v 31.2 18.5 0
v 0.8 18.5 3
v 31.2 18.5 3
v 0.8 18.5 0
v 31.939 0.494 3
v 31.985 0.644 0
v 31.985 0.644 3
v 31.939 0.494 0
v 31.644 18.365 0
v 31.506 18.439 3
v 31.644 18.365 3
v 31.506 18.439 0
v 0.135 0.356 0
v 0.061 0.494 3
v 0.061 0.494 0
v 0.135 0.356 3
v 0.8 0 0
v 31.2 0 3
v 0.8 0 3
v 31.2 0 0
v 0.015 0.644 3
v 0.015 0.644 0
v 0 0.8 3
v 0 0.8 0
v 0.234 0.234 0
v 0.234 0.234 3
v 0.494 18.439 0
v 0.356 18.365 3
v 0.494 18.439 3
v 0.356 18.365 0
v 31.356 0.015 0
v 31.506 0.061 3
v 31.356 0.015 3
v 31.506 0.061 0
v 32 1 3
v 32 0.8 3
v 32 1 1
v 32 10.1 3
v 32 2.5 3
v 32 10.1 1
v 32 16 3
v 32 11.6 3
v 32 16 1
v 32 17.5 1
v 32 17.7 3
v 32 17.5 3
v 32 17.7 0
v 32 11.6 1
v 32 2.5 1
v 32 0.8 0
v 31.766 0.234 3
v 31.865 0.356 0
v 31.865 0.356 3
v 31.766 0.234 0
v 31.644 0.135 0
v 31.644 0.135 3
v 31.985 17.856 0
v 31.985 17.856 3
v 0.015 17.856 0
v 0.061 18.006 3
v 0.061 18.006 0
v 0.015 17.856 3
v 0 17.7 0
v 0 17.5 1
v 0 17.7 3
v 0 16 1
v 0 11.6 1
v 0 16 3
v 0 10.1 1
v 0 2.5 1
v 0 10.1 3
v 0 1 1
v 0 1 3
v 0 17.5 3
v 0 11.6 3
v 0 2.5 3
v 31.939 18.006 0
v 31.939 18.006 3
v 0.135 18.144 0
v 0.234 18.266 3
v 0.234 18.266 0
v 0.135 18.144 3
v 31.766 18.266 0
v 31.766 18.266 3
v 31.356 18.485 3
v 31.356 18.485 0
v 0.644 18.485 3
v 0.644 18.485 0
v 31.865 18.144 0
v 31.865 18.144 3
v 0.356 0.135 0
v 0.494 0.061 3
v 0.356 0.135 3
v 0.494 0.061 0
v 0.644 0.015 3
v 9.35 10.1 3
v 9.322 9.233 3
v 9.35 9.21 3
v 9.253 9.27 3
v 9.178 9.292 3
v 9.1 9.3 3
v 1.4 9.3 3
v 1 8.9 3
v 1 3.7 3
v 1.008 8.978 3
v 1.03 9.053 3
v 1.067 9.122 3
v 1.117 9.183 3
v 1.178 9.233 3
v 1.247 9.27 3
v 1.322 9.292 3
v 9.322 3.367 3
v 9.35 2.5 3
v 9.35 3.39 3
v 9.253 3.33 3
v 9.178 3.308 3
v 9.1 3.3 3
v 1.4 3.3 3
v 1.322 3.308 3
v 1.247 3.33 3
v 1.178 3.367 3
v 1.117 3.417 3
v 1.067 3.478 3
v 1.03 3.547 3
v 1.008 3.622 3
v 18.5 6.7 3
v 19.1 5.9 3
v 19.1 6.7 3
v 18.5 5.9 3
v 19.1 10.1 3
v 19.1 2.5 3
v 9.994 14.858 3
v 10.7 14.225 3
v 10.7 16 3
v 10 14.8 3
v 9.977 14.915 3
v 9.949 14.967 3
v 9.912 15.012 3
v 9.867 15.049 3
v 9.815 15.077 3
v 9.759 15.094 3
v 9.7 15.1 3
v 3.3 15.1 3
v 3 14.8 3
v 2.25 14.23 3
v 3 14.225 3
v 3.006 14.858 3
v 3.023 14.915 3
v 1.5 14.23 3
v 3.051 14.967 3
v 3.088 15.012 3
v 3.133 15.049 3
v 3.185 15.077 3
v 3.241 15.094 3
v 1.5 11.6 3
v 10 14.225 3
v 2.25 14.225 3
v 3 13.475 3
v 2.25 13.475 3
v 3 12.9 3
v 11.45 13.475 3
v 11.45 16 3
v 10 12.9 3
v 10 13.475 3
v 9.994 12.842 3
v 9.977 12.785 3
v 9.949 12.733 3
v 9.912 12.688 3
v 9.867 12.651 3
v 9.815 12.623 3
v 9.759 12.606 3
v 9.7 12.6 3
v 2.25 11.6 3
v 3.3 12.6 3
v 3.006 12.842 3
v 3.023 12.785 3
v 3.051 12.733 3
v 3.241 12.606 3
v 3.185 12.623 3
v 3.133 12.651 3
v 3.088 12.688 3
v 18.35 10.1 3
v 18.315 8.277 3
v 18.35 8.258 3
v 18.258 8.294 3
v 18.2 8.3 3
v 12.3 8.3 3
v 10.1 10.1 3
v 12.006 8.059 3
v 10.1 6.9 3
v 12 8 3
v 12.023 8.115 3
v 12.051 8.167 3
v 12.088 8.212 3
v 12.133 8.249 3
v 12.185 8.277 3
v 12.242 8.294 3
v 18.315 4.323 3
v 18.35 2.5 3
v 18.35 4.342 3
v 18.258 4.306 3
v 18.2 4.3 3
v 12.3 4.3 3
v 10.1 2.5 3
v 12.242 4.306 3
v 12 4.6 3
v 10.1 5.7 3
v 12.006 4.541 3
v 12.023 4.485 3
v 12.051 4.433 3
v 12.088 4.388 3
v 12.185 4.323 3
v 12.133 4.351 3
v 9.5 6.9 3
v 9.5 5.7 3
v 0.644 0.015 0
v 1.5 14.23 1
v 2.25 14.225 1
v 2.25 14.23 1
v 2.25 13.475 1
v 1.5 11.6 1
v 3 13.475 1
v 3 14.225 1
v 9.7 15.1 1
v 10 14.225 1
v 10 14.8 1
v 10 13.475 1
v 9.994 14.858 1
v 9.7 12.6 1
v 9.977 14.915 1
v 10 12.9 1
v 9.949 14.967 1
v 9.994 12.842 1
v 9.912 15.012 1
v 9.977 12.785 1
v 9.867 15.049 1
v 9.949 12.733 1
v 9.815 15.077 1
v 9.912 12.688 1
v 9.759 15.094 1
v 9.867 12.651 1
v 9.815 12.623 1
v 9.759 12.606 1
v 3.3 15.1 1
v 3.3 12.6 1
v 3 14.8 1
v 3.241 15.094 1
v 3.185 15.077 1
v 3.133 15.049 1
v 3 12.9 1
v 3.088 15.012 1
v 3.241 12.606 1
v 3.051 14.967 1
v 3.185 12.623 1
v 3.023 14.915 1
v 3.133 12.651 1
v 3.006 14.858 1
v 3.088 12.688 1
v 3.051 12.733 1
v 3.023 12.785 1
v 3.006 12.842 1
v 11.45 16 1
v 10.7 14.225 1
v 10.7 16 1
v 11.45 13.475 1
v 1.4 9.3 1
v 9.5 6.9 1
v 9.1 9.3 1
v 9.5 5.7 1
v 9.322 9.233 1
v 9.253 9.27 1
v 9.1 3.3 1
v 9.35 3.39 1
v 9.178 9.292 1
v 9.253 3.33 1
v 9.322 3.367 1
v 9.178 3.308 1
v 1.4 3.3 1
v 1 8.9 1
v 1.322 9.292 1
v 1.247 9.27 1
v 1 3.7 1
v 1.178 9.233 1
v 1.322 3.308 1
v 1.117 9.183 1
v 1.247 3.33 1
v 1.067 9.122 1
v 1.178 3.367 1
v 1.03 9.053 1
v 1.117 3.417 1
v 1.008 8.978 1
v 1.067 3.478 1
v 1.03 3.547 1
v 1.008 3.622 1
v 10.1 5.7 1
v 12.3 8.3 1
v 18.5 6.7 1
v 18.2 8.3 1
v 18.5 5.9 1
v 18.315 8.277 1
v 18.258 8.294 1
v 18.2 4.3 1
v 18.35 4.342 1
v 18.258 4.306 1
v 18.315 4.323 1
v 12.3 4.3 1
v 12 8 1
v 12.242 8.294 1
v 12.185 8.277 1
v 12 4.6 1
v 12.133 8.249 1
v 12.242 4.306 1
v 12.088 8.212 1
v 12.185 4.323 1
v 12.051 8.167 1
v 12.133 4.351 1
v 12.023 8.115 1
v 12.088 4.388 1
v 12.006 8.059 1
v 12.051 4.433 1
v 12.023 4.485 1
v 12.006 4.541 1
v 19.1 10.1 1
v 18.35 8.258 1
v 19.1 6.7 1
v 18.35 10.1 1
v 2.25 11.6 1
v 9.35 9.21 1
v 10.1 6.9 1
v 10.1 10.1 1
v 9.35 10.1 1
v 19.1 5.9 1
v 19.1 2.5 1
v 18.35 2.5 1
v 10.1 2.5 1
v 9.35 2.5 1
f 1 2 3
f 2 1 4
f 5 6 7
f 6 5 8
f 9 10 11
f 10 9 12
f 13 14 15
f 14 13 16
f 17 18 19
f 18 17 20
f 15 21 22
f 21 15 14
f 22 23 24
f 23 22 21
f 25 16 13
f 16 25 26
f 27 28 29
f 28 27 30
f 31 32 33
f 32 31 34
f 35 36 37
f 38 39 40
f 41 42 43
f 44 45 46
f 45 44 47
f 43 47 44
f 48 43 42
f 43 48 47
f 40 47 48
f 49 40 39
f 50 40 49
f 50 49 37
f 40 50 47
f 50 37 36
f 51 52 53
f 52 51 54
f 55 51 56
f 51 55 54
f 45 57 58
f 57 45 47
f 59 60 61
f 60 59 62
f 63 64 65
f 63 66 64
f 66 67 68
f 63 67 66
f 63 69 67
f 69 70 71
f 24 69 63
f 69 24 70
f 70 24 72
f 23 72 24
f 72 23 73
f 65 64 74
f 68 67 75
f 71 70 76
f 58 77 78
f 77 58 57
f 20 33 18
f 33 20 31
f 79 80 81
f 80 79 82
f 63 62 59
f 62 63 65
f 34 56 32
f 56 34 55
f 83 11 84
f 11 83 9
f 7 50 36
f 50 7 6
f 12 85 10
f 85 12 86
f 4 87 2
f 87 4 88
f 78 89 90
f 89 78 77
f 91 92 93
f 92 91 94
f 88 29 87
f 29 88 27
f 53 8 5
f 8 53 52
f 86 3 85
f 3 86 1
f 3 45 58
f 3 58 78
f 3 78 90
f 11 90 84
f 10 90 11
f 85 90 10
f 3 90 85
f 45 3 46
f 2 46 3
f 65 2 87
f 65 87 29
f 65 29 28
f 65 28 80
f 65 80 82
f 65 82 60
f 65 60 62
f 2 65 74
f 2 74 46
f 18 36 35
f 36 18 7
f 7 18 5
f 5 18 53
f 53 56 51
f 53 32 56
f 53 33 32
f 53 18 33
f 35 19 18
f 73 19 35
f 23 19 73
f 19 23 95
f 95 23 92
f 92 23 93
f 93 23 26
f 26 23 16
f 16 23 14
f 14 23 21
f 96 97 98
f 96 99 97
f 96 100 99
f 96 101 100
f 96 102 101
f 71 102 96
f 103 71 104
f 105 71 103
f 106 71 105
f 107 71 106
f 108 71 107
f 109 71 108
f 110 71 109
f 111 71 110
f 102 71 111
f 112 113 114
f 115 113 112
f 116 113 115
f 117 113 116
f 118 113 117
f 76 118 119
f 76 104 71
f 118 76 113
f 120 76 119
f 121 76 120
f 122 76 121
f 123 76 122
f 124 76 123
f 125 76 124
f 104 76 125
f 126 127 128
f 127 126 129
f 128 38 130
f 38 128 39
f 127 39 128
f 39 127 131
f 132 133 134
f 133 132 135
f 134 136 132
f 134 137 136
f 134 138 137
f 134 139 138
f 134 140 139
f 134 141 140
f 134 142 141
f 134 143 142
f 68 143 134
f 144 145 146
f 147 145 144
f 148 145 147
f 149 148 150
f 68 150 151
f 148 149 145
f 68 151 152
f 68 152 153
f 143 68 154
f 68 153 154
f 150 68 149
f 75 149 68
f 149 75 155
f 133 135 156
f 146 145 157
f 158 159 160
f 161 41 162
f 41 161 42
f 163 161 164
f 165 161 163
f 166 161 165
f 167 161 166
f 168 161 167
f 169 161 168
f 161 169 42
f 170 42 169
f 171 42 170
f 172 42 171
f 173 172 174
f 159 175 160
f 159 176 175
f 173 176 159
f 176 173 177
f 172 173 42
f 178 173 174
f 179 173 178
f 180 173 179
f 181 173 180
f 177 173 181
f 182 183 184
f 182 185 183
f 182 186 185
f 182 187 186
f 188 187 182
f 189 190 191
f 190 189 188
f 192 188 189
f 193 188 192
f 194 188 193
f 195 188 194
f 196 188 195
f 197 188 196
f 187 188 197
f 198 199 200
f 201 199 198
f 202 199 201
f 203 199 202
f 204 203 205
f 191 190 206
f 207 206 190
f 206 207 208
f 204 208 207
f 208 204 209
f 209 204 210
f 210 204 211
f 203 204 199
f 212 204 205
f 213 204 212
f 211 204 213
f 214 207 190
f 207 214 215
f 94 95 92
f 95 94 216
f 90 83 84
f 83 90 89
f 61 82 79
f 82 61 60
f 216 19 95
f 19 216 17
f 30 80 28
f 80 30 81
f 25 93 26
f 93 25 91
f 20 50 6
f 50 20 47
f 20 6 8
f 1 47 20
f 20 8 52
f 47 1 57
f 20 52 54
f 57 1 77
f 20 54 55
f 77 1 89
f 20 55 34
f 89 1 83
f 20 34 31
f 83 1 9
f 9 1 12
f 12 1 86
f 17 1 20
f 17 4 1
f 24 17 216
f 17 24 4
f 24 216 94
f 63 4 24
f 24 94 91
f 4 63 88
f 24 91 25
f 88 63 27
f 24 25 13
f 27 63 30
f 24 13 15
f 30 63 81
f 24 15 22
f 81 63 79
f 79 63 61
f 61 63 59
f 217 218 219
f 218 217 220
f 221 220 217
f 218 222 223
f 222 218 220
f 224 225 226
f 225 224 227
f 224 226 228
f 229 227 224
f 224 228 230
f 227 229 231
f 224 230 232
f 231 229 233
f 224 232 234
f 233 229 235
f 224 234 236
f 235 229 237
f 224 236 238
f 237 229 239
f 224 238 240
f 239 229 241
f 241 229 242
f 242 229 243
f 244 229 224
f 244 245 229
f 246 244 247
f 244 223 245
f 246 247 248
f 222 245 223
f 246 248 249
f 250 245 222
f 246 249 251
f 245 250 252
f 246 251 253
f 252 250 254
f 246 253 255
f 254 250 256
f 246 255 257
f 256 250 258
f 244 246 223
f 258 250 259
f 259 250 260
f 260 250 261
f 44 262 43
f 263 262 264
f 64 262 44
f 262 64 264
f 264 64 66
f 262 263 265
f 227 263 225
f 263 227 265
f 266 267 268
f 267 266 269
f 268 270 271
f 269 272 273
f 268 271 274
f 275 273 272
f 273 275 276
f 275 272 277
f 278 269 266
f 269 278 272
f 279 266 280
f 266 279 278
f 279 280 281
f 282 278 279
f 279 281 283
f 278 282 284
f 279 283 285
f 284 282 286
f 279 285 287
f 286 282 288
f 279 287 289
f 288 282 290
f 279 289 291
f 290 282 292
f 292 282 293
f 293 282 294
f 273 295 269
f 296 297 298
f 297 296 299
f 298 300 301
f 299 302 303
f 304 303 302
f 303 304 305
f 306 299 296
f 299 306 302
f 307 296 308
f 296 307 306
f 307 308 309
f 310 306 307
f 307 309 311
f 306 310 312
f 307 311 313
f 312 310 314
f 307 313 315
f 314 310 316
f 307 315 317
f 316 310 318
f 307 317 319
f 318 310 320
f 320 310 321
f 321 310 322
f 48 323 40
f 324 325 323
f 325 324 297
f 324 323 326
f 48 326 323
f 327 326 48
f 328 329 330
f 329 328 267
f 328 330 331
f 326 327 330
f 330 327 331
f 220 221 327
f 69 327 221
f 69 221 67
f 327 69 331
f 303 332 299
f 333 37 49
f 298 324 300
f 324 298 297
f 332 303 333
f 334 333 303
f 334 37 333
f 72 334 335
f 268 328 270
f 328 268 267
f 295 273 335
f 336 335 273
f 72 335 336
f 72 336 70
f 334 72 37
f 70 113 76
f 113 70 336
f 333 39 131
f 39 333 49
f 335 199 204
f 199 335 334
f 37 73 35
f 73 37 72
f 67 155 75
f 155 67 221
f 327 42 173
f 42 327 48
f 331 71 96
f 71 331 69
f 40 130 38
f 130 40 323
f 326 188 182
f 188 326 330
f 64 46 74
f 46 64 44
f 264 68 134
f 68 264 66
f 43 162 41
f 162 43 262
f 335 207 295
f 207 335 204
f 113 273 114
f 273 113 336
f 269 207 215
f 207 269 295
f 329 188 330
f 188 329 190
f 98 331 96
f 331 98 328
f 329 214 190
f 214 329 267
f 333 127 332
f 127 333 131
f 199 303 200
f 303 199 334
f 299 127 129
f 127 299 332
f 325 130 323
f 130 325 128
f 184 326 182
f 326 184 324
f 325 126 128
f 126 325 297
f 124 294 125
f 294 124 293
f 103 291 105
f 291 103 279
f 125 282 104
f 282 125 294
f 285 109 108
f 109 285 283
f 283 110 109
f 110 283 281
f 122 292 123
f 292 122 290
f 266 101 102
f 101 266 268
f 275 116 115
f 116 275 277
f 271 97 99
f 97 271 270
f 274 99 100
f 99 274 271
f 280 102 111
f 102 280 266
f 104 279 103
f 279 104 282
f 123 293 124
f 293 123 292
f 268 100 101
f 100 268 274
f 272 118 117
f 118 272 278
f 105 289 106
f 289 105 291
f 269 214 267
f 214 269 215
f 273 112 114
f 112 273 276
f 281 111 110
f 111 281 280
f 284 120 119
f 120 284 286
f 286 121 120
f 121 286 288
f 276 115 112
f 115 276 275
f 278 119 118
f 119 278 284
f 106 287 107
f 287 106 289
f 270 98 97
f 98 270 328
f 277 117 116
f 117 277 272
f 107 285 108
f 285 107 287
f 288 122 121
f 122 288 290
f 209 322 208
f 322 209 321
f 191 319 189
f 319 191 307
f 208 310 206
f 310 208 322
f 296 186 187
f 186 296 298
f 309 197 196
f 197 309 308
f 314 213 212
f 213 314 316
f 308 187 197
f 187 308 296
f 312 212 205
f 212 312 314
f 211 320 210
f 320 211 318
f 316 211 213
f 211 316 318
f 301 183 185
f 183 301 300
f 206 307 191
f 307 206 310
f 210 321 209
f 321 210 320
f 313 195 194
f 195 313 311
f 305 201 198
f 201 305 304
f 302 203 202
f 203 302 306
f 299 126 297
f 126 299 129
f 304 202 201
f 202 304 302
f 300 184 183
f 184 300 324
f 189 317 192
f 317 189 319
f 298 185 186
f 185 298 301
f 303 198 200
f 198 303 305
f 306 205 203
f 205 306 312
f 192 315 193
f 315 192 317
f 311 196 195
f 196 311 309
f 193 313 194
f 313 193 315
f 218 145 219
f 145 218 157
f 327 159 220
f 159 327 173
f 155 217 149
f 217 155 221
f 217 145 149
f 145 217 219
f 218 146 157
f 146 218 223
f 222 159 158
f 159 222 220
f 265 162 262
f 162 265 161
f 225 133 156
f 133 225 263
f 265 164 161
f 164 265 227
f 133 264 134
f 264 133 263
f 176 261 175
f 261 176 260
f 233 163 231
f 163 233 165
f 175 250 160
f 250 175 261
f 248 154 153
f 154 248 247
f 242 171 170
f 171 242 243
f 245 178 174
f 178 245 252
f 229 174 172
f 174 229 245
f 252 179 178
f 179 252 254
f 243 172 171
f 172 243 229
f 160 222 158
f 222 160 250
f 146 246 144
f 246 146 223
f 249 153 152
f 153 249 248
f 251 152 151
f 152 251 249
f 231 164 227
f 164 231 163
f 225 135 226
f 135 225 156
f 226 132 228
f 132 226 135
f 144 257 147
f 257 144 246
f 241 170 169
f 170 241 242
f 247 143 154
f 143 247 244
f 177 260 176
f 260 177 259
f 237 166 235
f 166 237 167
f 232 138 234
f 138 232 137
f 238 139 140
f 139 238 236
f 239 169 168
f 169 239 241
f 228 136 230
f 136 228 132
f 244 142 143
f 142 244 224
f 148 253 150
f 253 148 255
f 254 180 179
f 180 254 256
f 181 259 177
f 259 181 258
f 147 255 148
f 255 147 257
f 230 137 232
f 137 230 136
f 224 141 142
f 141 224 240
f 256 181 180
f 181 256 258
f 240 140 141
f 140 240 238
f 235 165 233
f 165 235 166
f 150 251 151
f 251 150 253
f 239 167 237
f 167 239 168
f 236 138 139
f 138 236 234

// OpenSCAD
// VentSys sensor-array power splice carrier
// Glue-down wire carrier in the style of skill-test-servo-wiring-no-led-v16.
//
// ESP32-C6-Zero (left) -> three through rails (uniform width) -> sensor wires (right)
//   3V3 : ESP 3V3 in  -> 10uF + 100nF to GND -> BME680, SDP810, smoke, CO, OLED, LDR
//   GND : ESP GND in  -> both capacitors      -> BME680, SDP810, smoke, CO, OLED
//   LDR : ESP GPIO0   -> 10k to GND           -> LDR (other LDR leg on the 3V3 rail)
// I2C (SDA GPIO4 / SCL GPIO5) and the smoke (GPIO3) / CO (GPIO2) analog lines
// do not pass through this carrier.

$fn = 32;

// ============================================================================
// GLOBAL BOARD SETTINGS
// ============================================================================

layout_x = 32.00;   // [10.00:0.01:80.00]
layout_y = 18.50;   // [10.00:0.01:60.00]
edge_left = 0.00;   // [0.00:0.01:20.00]
edge_right = 0.00;  // [0.00:0.01:20.00]
edge_top = 0.00;    // [0.00:0.01:20.00]
edge_bottom = 0.00; // [0.00:0.01:20.00]

plate_z = 3.00;     // [1.00:0.01:10.00]
recess_d = 2.00;    // [0.50:0.01:5.00]
corner_r = 0.80;    // [0.00:0.01:5.00]

rail_w = 1.50;       // [0.50:0.01:5.00]
branch_w = 0.75;     // [0.25:0.01:3.00]
join_overlap = 0.05; // [0.00:0.01:1.00]

// ============================================================================
// RAIL POSITIONS
// ============================================================================

rail_3v3_y = 1.00;   // [0.00:0.01:50.00]
rail_gnd_y = 10.10;  // [0.00:0.01:50.00]
rail_ldr_y = 16.00;  // [0.00:0.01:50.00]

// ============================================================================
// 10uF CERAMIC POCKET + CHANNELS (radial X7R/X5R 16V, laid flat)
// ============================================================================

cap10_x = 1.00;    // [0.00:0.01:80.00]
cap10_y = 3.30;    // [0.00:0.01:50.00]
cap10_w = 8.50;    // [0.50:0.01:40.00]
cap10_h = 6.00;    // [0.50:0.01:40.00]
cap10_r = 0.40;    // [0.00:0.01:5.00]

cap10_branch_x = 9.35;     // [0.00:0.01:80.00]

cap10_3v3_branch_y = 1.75; // [0.00:0.01:50.00]
cap10_3v3_branch_h = 3.95; // [0.10:0.01:30.00]

cap10_gnd_branch_y = 6.90; // [0.00:0.01:50.00]
cap10_gnd_branch_h = 3.95; // [0.10:0.01:30.00]

// ============================================================================
// 100nF CERAMIC POCKET + CHANNELS
// ============================================================================

cap100_x = 12.00;  // [0.00:0.01:80.00]
cap100_y = 4.30;   // [0.00:0.01:50.00]
cap100_w = 6.50;   // [0.50:0.01:40.00]
cap100_h = 4.00;   // [0.50:0.01:40.00]
cap100_r = 0.30;   // [0.00:0.01:5.00]

cap100_branch_x = 18.35;    // [0.00:0.01:80.00]

cap100_3v3_branch_y = 1.75; // [0.00:0.01:50.00]
cap100_3v3_branch_h = 4.15; // [0.10:0.01:30.00]

cap100_gnd_branch_y = 6.70; // [0.00:0.01:50.00]
cap100_gnd_branch_h = 4.15; // [0.10:0.01:30.00]

// ============================================================================
// 10k LDR PULL-DOWN POCKET + CHANNELS (GND rail -> resistor -> LDR rail)
// ============================================================================

r10k_x = 3.00;   // [0.00:0.01:80.00]
r10k_y = 12.60;  // [0.00:0.01:50.00]
r10k_w = 7.00;   // [0.50:0.01:40.00]
r10k_h = 2.50;   // [0.50:0.01:20.00]
r10k_r = 0.30;   // [0.00:0.01:5.00]

r10k_gnd_drop_x = 1.50;  // [0.00:0.01:80.00]
r10k_gnd_drop_y = 10.85; // [0.00:0.01:50.00]
r10k_gnd_drop_h = 3.38;  // [0.10:0.01:30.00]
r10k_gnd_run_w = 1.55;   // [0.10:0.01:30.00]

r10k_ldr_run_x = 9.95;   // [0.00:0.01:80.00]
r10k_ldr_run_w = 1.50;   // [0.10:0.01:30.00]
r10k_ldr_rise_y = 13.475; // [0.00:0.01:50.00]
r10k_ldr_rise_h = 3.275; // [0.10:0.01:30.00]

// ============================================================================
// DERIVED VALUES
// ============================================================================

origin_x = edge_left;
origin_y = edge_top;
plate_x = layout_x + edge_left + edge_right;
plate_y = layout_y + edge_top + edge_bottom;

rail_3v3_mid = origin_y + rail_3v3_y + rail_w / 2;
rail_gnd_mid = origin_y + rail_gnd_y + rail_w / 2;
rail_ldr_mid = origin_y + rail_ldr_y + rail_w / 2;
r10k_mid_y = r10k_y + r10k_h / 2;

// ============================================================================
// GEOMETRY HELPERS
// ============================================================================

module rounded_rect_2d(x, y, r) {
  hull() {
    translate([r, r]) circle(r = r);
    translate([x - r, r]) circle(r = r);
    translate([r, y - r]) circle(r = r);
    translate([x - r, y - r]) circle(r = r);
  }
}

module rounded_cut(x, y, z, r) {
  linear_extrude(height = z)
    rounded_rect_2d(x, y, min(r, x / 2, y / 2));
}

module recess_rect(x, y, sx, sy, r = 0) {
  translate([x, y, plate_z - recess_d])
    if (r > 0) {
      rounded_cut(sx, sy, recess_d + 0.04, r);
    } else {
      cube([sx, sy, recess_d + 0.04]);
    }
}

module rail(y_pos) {
  recess_rect(-0.02, origin_y + y_pos, plate_x + 0.04, rail_w);
}

module local_recess_rect(x, y, sx, sy, r = 0) {
  recess_rect(origin_x + x, origin_y + y, sx, sy, r);
}

// ============================================================================
// MAIN SOLID
// ============================================================================

difference() {
  rounded_cut(plate_x, plate_y, plate_z, corner_r);

  rail(rail_3v3_y);
  rail(rail_gnd_y);
  rail(rail_ldr_y);

  local_recess_rect(cap10_branch_x, cap10_3v3_branch_y, branch_w, cap10_3v3_branch_h);
  local_recess_rect(cap10_branch_x, cap10_gnd_branch_y, branch_w, cap10_gnd_branch_h);
  local_recess_rect(cap100_branch_x, cap100_3v3_branch_y, branch_w, cap100_3v3_branch_h);
  local_recess_rect(cap100_branch_x, cap100_gnd_branch_y, branch_w, cap100_gnd_branch_h);

  local_recess_rect(cap10_x, cap10_y, cap10_w, cap10_h, cap10_r);
  local_recess_rect(cap100_x, cap100_y, cap100_w, cap100_h, cap100_r);

  // 10k: left lead drops from the GND rail, right lead runs to the LDR rail
  local_recess_rect(r10k_gnd_drop_x, r10k_gnd_drop_y, branch_w, r10k_gnd_drop_h);
  local_recess_rect(r10k_gnd_drop_x, r10k_mid_y - branch_w / 2, r10k_gnd_run_w + join_overlap, branch_w);
  local_recess_rect(r10k_ldr_run_x, r10k_mid_y - branch_w / 2, r10k_ldr_run_w, branch_w);
  local_recess_rect(r10k_ldr_run_x + r10k_ldr_run_w - branch_w, r10k_ldr_rise_y, branch_w, r10k_ldr_rise_h);
  local_recess_rect(r10k_x, r10k_y, r10k_w, r10k_h, r10k_r);
}
